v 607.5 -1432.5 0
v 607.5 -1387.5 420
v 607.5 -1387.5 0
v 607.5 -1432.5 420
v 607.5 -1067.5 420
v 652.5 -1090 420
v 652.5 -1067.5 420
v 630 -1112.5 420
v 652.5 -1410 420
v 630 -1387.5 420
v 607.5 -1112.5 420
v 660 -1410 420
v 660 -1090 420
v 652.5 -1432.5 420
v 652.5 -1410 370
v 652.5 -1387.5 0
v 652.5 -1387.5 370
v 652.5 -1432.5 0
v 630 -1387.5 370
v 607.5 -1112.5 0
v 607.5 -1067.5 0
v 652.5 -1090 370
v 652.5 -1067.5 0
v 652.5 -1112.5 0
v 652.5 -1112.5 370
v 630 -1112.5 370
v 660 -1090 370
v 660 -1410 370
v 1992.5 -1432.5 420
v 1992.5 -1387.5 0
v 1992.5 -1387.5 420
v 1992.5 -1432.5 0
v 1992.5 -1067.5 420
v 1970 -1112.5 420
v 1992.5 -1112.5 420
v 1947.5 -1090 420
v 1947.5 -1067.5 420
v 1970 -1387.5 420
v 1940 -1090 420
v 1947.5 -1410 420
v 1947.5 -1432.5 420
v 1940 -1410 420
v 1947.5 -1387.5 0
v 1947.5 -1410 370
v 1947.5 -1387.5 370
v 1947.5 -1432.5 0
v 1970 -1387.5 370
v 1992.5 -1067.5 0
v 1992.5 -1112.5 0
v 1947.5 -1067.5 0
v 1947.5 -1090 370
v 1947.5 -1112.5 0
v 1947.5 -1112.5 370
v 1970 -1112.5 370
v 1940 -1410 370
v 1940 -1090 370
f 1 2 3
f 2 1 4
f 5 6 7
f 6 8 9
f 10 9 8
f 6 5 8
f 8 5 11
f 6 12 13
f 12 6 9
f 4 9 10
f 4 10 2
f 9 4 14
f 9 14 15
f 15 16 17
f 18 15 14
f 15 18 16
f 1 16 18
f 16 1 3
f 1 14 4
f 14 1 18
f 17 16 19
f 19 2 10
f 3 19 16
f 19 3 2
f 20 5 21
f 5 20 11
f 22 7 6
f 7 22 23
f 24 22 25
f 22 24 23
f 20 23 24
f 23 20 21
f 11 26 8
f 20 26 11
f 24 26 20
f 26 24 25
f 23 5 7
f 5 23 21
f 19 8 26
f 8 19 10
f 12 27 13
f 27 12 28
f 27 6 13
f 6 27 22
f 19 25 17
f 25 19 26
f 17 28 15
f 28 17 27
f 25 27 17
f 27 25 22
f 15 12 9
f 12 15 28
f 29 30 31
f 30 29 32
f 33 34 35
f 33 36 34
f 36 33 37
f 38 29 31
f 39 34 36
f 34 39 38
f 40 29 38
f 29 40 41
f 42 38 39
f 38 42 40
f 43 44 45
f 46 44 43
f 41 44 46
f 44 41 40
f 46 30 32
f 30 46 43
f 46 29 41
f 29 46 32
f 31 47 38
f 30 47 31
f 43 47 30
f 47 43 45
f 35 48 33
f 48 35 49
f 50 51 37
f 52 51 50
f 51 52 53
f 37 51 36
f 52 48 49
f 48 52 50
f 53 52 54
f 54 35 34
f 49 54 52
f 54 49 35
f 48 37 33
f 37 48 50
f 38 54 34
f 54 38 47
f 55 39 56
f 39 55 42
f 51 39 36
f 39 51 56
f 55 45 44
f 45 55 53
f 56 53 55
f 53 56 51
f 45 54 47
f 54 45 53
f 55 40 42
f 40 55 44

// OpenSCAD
// file: tea_shop_furniture_parameters.scad
// =============================================================================
// TEA SHOP DIORAMA — GROUP 6: EXTERIOR FURNITURE PARAMETERS
// =============================================================================
// All units: mm (1000 mm = 1.0 m), 1:1 real-world scale (1000 units = 1 GTA unit).
// Shared global coordinate system (identical to Groups 1–5):
//   +X -> left -> right  (0 = left outer wall, BUILD_W = right outer wall)
//   +Y -> front -> back  (0 = front wall eave face, BUILD_D = back wall, porch in -Y)
//   +Z -> up             (0 = top surface of base slab / ground datum)
// =============================================================================

// =============================================================================
// 1. SHARED GLOBAL VARIABLES (Reused from Groups 1–5 — identical values)
// =============================================================================
WALL_T             = 250;   // wall panel thickness                      (0.25 m)
BUILD_W            = 6000;  // building width along X                    (6.00 m)
BUILD_D            = 4000;  // building depth along Y                    (4.00 m)
FRONT_H            = 2400;  // wall height at FRONT eave (short side)    (2.40 m)
WIN_X              = 600;   // left pier width / window start X datum    (0.60 m)
WIN_W              = 3400;  // service window width                      (3.40 m)
SILL_H             = 900;   // knee-wall sill height beneath window      (0.90 m)
BASE_H             = 200;   // base plinth vertical thickness            (0.20 m)
BASE_MARGIN_FRONT  = 3000;  // front porch slab depth (extends to Y=-3m) (3.00 m)

// Aliases for compatibility with earlier group files:
wall_thickness     = WALL_T;
building_width     = BUILD_W;
building_depth     = BUILD_D;
front_eave_height  = FRONT_H;
sill_height        = SILL_H;
base_front_margin  = BASE_MARGIN_FRONT;


// =============================================================================
// 2. GROUP 6 PARAMETERS — BENCH (Long Wooden Porch Bench)
// =============================================================================
// REFERENCE OBSERVATIONS (Images: page 1/2 daylight/night, page 5 clay,
// page 7 front elevation, page 8 wireframe, page 14 eye-level):
//
// 1. Bench Style & Proportions:
//    - Simple utilitarian Indian roadside tea stall wooden bench.
//    - Single flat solid rectangular wooden plank for the seat.
//    - Two leg assemblies (one at each end). Wireframe (page 8) and clay (page 5)
//      confirm each leg pair is NOT a solid A-frame slab, but TWO straight
//      square timber posts tied together under the seat by a horizontal cross
//      apron rail. The posts are vertical (0 deg angle) with inset mounting.
//    - Bench height is roughly half the window sill height:
//      SILL_H = 900 mm -> BENCH_HEIGHT = 460 mm (~18 inches standard seating).
//    - Bench length spans ~1500 mm, comfortably seating 3-4 patrons.
//    - Bench width is ~400 mm (standard 16-inch bench seat).
//
// [ESTIMATED DIMENSIONS NOTE]:
// - Bench top thickness (40 mm) estimated from front elevation pixel ratio
//   (~1/11 of bench height).
// - Leg post cross-section (45x45 mm) estimated from wireframe edge density.
// - Inset of legs from ends (80 mm) and edges (17.5 mm) estimated from clay shot.
// - Bench X position (X = 550 mm) sits under the left pier and left edge of
//   the service window, leaving clear passage to the counter and door.
// - Bench Y position (Y = -1250 mm) sits centrally under the pergola canopy
//   (between wall Y=0 and front post line Y=-2250 mm).
BENCH_LENGTH          = 1500; // bench seat plank length along X (mm)
BENCH_WIDTH           = 400;  // bench seat plank width along Y (mm)
BENCH_HEIGHT          = 460;  // total seat height from ground (Z=0) to top face (mm)
BENCH_TOP_THICKNESS   = 40;   // thickness of seat top plank (mm)

// Bench Leg Pair (2 posts + top cross apron rail per end):
BENCH_LEG_SIZE        = 45;   // square timber leg cross-section (45x45 mm)
BENCH_LEG_ANGLE       = 0;    // leg angle from vertical (0 deg = straight vertical posts)
BENCH_LEG_PAIR_WIDTH  = 320;  // center-to-center span across Y of the 2 end legs (mm)
                              // Outer edge-to-edge span = 320 + 45 = 365 mm
                              // Leaves (400 - 365)/2 = 17.5 mm front/back overhang
BENCH_LEG_INSET_X     = 80;   // inset of leg center from left/right plank ends (mm)
BENCH_APRON_WIDTH     = 30;   // thickness of horizontal cross apron rail along X (mm)
BENCH_APRON_HEIGHT    = 50;   // vertical height of horizontal cross apron rail (mm)

// Bench Porch Placement (World Coordinates):
BENCH_POS_X           = 550;  // left edge X coordinate of bench top (mm)
BENCH_POS_Y           = -1250;// center Y coordinate of bench (mm)
                              // Back edge is at Y = -1050 mm, Front edge at Y = -1450 mm
BENCH_ROT_Z           = 0;    // rotation angle about Z (0 = parallel to front wall)


// =============================================================================
// 3. GROUP 6 PARAMETERS — STOOLS (Round Wooden Porch Stools)
// =============================================================================
// REFERENCE OBSERVATIONS (Images: page 1/2, page 5 clay, page 7 elevation,
// page 8 wireframe, page 13 interior close-up, page 14 eye-level):
//
// 1. Stool Style & Proportions:
//    - Round wooden top seat disc with bevel/slight chamfer, resting on
//      4 splayed square timber legs.
//    - Polycount optimization: 12-sided cylinder ( = 12) provides a clean,
//      authentic round silhouette while keeping polycount low for GTA V MLO props.
//    - Stool height is 450 mm (level with the bench, exactly half the 900mm sill).
//    - Seat diameter is 300 mm (~12 inches), standard for street tea stalls.
//    - Legs splay outward slightly from under the seat disc (angle ~3.5 deg),
//      ensuring stability while remaining inside the seat diameter footprint at the base.
//
// 2. Stool Clustering Layout:
//    - The reference images show 3 stools clustered together directly in front of
//      the counter window (X = 2500..3400 mm), where patrons sit to drink tea.
//    - They are NOT placed on a rigid grid:
//        * Stool 1: [2550, -1550] — front-left of the cluster, closer to walkway
//        * Stool 2: [2850, -1050] — back-mid of the cluster, closer to counter window
//        * Stool 3: [3350, -1400] — front-right of the cluster, near entrance path
//
// [ESTIMATED DIMENSIONS NOTE]:
// - Seat thickness (35 mm) estimated from front elevation and wireframe.
// - Leg cross-section (30x30 mm) estimated from wireframe edge density.
// - Splay angle (3.5 deg) estimated from wireframe slope relative to vertical.
STOOL_HEIGHT          = 450;  // total height to top of stool seat (mm)
STOOL_SEAT_DIA        = 300;  // round seat disc diameter (mm)
STOOL_SEAT_RADIUS     = STOOL_SEAT_DIA / 2; // 150 mm
STOOL_SEAT_THICKNESS  = 35;   // seat disc thickness (mm)

// Stool Leg Dimensions:
STOOL_LEG_SIZE        = 30;   // square timber leg cross-section (30x30 mm)
STOOL_LEG_SPLAY_ANGLE = 3.5;  // outward splay angle from vertical (degrees)
STOOL_LEG_RADIUS_TOP  = 95;   // radial distance of leg center from stool center at top (mm)
                              // Leaves 150 - (95 + 15) = 40 mm seat lip overhang

// Derived stool leg length along its angled axis:
STOOL_LEG_H           = STOOL_HEIGHT - STOOL_SEAT_THICKNESS; // vertical leg span (415 mm)
STOOL_LEG_LEN         = STOOL_LEG_H / cos(STOOL_LEG_SPLAY_ANGLE); // angled length (~415.78 mm)

// Low-poly curvature resolution for MLO optimization:
STOOL_FN              = 12;   // 12-sided polygon for round seat disc (MLO target)

// Stool Positions Array (3 clustered [X, Y] coordinates on the porch):
STOOL_POSITIONS = [
    [2550, -1550],  // Stool 1: Front-Left
    [2850, -1050],  // Stool 2: Back-Mid (near counter)
    [3350, -1400]   // Stool 3: Front-Right (near entrance)
];
// main file
// =============================================================================
// TEA SHOP DIORAMA — GROUP 6: BENCH LEGS (BOTH LEG ASSEMBLIES)
// =============================================================================
// Standalone export for both bench leg pair assemblies.
// Positioned directly in world coordinates on top of the base slab.
// =============================================================================

include <tea_shop_furniture_modules.scad>;

translate([BENCH_POS_X, BENCH_POS_Y, 0])
rotate([0, 0, BENCH_ROT_Z]) {
    // Left Leg Pair (Normal)
    translate([BENCH_LEG_INSET_X, 0, 0])
        bench_leg_pair();

    // Right Leg Pair (Mirrored)
    translate([BENCH_LENGTH - BENCH_LEG_INSET_X, 0, 0])
        mirror([1, 0, 0])
            bench_leg_pair();
}
